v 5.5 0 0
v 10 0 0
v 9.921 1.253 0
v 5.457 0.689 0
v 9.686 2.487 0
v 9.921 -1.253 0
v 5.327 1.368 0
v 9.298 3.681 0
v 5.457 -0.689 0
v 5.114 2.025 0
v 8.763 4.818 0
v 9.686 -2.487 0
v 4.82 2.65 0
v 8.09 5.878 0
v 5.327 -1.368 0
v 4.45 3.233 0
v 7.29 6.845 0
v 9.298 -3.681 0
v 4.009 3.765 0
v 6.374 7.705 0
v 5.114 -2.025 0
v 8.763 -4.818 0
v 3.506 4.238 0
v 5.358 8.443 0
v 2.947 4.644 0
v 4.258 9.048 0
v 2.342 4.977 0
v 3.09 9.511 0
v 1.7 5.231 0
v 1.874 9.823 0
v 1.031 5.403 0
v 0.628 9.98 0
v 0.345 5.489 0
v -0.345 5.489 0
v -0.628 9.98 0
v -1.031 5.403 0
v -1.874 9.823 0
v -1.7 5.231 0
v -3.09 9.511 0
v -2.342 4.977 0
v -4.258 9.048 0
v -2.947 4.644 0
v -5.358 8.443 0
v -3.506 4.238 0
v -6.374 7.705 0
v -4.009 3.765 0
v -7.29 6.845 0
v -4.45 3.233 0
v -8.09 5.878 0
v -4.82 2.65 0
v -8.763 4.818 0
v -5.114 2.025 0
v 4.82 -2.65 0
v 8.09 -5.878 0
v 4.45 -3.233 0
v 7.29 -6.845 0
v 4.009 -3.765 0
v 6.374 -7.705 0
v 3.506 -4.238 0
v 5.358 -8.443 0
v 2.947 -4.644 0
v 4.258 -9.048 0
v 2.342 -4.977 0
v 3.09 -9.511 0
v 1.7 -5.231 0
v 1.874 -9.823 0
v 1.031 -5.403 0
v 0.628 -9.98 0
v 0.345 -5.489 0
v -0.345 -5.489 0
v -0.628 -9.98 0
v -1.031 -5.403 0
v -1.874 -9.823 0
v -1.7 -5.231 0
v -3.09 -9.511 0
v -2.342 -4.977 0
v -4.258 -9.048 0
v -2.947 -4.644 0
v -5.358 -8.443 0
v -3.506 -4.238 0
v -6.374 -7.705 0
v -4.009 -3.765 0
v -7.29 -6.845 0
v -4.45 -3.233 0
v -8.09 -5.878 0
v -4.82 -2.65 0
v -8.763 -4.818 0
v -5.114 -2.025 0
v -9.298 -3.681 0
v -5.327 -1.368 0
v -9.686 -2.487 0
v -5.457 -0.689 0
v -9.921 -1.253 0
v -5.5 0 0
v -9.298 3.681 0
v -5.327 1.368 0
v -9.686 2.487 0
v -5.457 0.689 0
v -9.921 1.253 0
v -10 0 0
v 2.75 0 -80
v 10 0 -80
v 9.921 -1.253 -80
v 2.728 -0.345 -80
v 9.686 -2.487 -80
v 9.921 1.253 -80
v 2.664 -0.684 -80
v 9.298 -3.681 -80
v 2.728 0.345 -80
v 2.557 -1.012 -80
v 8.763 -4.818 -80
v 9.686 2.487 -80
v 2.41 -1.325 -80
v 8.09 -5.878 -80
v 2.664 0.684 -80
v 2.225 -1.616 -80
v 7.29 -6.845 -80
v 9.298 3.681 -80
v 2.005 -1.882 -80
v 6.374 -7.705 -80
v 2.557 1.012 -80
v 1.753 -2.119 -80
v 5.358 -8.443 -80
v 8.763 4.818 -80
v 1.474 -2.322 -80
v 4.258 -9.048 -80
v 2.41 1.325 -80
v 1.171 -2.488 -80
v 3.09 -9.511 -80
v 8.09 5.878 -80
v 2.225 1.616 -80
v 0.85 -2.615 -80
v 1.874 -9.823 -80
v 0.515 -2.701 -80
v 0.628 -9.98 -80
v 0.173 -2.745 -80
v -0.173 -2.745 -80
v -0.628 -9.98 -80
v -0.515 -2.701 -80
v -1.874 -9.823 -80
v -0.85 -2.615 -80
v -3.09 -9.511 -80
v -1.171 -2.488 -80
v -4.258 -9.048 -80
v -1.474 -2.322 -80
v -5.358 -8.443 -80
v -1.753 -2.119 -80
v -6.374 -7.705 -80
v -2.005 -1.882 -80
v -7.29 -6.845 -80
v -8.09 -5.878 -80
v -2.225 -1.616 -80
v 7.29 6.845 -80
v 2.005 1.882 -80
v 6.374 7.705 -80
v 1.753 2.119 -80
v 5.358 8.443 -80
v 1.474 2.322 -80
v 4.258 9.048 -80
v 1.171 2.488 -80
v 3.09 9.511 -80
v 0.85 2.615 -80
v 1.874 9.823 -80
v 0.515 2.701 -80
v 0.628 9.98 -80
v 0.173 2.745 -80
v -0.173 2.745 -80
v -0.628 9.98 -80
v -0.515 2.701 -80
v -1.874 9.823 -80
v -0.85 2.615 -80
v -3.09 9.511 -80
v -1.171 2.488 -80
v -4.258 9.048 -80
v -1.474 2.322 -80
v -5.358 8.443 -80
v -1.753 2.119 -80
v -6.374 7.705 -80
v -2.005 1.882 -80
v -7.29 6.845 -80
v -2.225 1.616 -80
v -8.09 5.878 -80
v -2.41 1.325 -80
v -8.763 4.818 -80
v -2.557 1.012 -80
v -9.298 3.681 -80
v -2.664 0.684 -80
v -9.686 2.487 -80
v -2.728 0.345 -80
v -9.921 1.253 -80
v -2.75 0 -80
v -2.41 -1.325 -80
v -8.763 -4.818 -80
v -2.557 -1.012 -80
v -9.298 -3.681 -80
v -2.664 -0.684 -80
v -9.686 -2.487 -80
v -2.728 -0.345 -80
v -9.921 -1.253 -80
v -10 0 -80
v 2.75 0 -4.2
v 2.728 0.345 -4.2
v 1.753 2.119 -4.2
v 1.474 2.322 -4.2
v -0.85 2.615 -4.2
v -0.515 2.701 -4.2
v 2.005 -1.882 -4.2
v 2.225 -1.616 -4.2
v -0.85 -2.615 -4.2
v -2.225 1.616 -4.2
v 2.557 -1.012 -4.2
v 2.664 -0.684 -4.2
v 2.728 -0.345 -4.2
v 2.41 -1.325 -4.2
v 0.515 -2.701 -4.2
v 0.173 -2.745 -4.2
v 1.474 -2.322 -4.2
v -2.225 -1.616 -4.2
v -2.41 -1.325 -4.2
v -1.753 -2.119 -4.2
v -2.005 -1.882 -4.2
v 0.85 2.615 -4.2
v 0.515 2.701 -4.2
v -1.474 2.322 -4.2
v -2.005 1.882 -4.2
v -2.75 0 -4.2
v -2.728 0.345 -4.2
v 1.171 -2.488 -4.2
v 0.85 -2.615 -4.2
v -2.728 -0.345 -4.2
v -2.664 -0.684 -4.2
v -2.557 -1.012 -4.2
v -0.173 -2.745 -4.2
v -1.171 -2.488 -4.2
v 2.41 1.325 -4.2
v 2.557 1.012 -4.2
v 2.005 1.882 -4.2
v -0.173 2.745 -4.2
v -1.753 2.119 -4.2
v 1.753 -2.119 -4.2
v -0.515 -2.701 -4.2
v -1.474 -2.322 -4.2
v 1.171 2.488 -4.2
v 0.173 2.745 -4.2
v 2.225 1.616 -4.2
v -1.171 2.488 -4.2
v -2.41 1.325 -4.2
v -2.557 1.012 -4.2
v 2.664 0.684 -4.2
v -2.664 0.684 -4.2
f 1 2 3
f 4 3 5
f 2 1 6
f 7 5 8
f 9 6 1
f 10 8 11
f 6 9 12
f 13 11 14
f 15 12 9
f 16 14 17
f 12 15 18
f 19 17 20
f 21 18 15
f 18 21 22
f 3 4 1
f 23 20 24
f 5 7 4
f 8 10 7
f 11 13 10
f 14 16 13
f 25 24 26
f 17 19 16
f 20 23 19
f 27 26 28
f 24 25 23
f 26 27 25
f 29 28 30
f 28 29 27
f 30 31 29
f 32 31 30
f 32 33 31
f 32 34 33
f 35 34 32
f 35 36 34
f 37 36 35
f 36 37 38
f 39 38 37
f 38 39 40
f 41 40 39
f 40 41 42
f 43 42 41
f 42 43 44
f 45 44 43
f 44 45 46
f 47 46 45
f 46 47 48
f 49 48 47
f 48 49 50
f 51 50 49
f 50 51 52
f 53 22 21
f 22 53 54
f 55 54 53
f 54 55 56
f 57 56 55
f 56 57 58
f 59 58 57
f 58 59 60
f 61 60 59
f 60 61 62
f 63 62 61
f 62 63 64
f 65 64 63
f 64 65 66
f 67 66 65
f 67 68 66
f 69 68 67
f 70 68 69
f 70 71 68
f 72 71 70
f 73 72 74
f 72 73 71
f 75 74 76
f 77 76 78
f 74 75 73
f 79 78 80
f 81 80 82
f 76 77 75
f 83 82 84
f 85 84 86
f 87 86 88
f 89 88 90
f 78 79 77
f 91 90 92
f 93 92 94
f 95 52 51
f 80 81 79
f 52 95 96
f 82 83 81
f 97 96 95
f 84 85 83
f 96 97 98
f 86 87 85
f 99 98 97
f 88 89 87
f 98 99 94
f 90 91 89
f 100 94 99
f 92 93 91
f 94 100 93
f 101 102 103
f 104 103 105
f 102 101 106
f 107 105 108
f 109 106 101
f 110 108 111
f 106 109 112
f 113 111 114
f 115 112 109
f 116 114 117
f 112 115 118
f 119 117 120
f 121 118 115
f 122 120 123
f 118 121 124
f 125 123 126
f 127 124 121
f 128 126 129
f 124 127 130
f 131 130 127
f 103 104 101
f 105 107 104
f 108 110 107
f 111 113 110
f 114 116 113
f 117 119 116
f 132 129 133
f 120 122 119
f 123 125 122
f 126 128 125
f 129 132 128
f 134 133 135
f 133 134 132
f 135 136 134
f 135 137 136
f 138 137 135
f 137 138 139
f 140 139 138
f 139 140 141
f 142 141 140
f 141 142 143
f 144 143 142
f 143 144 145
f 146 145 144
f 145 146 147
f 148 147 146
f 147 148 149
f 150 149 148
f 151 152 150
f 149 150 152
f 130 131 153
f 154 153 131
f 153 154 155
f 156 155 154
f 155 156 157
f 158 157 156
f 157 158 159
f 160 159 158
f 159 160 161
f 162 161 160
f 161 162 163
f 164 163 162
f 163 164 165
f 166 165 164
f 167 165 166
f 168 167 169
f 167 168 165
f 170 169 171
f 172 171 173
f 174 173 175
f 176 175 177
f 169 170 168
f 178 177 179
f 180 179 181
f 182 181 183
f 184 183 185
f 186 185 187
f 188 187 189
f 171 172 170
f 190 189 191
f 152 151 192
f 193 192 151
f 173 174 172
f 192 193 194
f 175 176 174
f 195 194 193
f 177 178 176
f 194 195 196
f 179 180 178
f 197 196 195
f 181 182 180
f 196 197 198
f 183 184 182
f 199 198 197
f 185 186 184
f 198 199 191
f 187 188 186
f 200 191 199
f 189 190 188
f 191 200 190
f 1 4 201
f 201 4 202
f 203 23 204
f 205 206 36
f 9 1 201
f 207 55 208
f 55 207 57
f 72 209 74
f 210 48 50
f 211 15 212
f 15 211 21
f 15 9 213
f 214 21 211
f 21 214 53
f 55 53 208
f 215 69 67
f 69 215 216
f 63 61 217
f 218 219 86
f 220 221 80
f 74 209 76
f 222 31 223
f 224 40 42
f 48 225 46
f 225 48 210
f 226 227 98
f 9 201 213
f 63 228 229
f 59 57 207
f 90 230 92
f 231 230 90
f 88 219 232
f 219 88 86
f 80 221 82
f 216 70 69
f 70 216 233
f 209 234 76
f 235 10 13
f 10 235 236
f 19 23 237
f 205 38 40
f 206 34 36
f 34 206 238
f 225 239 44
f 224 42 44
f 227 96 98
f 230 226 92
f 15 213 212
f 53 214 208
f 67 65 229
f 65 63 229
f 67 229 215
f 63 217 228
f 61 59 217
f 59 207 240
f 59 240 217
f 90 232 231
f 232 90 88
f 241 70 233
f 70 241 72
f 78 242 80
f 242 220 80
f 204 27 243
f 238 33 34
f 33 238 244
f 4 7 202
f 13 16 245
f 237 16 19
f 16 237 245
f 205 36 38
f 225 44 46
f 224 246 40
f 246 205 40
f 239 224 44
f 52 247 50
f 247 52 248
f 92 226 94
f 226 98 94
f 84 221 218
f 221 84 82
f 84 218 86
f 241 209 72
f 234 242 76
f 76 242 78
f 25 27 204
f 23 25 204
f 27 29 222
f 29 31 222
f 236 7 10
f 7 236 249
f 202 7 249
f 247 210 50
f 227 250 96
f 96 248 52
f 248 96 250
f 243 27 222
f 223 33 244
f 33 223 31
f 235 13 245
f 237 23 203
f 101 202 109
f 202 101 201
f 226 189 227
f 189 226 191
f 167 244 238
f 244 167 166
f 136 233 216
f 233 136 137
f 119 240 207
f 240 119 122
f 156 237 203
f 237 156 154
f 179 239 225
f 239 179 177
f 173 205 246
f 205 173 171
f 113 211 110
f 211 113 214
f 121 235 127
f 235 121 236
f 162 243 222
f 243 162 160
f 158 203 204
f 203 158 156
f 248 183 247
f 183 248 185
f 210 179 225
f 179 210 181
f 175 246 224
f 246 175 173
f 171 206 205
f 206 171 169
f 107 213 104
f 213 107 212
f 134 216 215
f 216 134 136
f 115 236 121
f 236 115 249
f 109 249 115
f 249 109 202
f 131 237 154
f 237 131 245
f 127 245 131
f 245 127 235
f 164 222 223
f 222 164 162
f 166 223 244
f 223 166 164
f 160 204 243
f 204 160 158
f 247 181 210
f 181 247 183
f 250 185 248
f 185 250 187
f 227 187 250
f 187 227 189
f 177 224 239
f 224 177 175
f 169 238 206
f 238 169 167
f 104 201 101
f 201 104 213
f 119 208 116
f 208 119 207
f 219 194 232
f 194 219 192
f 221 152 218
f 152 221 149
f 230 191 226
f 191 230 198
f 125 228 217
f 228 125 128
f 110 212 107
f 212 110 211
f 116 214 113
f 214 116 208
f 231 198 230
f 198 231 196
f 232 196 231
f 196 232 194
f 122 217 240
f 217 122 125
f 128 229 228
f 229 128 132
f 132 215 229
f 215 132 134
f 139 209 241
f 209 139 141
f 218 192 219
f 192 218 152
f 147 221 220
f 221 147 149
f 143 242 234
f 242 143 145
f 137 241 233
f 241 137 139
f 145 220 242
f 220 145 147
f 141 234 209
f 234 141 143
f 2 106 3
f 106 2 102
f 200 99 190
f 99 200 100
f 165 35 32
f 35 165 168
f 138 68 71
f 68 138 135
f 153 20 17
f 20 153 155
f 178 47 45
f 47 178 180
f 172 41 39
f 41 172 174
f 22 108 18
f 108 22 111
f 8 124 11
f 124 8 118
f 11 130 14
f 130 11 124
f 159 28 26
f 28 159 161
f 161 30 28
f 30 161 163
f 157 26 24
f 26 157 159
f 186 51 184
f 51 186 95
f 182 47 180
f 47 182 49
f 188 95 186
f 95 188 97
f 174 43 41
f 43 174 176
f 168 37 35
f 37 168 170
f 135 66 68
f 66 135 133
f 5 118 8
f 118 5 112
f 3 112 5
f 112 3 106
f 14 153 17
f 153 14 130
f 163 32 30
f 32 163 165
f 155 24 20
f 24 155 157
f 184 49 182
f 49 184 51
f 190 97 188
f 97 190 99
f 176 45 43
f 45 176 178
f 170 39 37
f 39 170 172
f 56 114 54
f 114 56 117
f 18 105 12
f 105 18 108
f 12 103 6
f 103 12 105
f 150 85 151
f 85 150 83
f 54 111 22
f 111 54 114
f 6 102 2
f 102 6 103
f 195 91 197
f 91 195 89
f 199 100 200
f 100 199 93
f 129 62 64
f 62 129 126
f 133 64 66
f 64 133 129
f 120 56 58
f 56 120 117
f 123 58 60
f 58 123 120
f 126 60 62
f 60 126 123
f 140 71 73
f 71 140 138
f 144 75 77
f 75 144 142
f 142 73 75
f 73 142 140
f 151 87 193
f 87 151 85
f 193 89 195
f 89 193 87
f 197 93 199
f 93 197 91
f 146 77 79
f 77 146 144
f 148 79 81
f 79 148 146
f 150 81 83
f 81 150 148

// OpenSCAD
$fn = 50;


difference() {
	union() {
		translate(v = [0, 0, -80.0000000000]) {
			cylinder(h = 80, r = 10.0000000000);
		}
		cylinder(h = 0, r = 19.0000000000);
	}
	union() {
		translate(v = [0, 0, 0]) {
			rotate(a = [0, 0, 0]) {
				difference() {
					union() {
						#translate(v = [0, 0, -80.0000000000]) {
							cylinder(h = 80, r = 2.2500000000);
						}
						#translate(v = [0, 0, -4.2000000000]) {
							cylinder(h = 4.2000000000, r = 10.0000000000, r1 = 2.7500000000, r2 = 5.5000000000);
						}
						#translate(v = [0, 0, -80.0000000000]) {
							cylinder(h = 80, r = 2.7500000000);
						}
						#translate(v = [0, 0, -80.0000000000]) {
							cylinder(h = 80, r = 2.2500000000);
						}
					}
					union();
				}
			}
		}
	}
}
